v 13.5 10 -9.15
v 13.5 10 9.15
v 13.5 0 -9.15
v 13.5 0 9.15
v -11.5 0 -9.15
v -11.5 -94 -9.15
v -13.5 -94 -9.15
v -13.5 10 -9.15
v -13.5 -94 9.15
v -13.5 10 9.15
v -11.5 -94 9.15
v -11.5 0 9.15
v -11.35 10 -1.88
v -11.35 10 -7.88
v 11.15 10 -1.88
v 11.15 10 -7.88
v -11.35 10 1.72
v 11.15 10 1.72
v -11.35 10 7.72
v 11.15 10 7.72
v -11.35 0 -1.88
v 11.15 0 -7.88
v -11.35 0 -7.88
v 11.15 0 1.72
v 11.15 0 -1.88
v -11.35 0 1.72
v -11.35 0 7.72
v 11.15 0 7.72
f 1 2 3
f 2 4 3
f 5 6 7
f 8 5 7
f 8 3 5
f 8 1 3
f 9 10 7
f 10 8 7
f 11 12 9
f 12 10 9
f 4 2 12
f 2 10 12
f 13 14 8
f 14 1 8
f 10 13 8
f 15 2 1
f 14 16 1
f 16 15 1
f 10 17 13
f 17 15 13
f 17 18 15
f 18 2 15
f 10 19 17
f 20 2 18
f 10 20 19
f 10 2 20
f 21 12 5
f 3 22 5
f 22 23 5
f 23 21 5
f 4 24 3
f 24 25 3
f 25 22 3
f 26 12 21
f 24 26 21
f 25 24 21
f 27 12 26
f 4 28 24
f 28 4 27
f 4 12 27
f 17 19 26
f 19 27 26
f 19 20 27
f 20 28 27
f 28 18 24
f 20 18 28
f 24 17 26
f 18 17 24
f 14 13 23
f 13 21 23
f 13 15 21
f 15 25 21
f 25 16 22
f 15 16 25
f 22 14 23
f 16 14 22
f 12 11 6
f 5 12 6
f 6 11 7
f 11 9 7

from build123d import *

# Parameters (mm, degrees)
SKETCH_1_W          = 27
SKETCH_1_H          = 18.3
EXTRUDE_1_DEPTH     = 10
SKETCH_2_W          = 22.5
SKETCH_2_H          = 6
CUT_EXTRUDE_1_DEPTH = 10
SKETCH_3_W          = 2
SKETCH_3_H          = 18.3
EXTRUDE_2_DEPTH     = 94


with BuildPart() as part:
    # 草图1 → 凸台-拉伸1 (new body)
    with BuildSketch(Plane(origin=(0, 0, 0), x_dir=(1, 0, 0), z_dir=(0, 1, 0))):
        Rectangle(SKETCH_1_W, SKETCH_1_H)
    extrude(amount=EXTRUDE_1_DEPTH)

    # 草图2 → 切除-拉伸1 (cut)
    with BuildSketch(Plane.XZ):
        with Locations((-0.1, -4.88)):
            Rectangle(SKETCH_2_W, SKETCH_2_H)
        with Locations((-0.1, 4.72)):
            Rectangle(SKETCH_2_W, SKETCH_2_H)
    extrude(amount=-CUT_EXTRUDE_1_DEPTH, mode=Mode.SUBTRACT)

    # 草图3 → 凸台-拉伸2 (add)
    with BuildSketch(Plane.XZ):
        with Locations((-12.5, 0)):
            Rectangle(SKETCH_3_W, SKETCH_3_H)
    extrude(amount=EXTRUDE_2_DEPTH)


solid = part.part
